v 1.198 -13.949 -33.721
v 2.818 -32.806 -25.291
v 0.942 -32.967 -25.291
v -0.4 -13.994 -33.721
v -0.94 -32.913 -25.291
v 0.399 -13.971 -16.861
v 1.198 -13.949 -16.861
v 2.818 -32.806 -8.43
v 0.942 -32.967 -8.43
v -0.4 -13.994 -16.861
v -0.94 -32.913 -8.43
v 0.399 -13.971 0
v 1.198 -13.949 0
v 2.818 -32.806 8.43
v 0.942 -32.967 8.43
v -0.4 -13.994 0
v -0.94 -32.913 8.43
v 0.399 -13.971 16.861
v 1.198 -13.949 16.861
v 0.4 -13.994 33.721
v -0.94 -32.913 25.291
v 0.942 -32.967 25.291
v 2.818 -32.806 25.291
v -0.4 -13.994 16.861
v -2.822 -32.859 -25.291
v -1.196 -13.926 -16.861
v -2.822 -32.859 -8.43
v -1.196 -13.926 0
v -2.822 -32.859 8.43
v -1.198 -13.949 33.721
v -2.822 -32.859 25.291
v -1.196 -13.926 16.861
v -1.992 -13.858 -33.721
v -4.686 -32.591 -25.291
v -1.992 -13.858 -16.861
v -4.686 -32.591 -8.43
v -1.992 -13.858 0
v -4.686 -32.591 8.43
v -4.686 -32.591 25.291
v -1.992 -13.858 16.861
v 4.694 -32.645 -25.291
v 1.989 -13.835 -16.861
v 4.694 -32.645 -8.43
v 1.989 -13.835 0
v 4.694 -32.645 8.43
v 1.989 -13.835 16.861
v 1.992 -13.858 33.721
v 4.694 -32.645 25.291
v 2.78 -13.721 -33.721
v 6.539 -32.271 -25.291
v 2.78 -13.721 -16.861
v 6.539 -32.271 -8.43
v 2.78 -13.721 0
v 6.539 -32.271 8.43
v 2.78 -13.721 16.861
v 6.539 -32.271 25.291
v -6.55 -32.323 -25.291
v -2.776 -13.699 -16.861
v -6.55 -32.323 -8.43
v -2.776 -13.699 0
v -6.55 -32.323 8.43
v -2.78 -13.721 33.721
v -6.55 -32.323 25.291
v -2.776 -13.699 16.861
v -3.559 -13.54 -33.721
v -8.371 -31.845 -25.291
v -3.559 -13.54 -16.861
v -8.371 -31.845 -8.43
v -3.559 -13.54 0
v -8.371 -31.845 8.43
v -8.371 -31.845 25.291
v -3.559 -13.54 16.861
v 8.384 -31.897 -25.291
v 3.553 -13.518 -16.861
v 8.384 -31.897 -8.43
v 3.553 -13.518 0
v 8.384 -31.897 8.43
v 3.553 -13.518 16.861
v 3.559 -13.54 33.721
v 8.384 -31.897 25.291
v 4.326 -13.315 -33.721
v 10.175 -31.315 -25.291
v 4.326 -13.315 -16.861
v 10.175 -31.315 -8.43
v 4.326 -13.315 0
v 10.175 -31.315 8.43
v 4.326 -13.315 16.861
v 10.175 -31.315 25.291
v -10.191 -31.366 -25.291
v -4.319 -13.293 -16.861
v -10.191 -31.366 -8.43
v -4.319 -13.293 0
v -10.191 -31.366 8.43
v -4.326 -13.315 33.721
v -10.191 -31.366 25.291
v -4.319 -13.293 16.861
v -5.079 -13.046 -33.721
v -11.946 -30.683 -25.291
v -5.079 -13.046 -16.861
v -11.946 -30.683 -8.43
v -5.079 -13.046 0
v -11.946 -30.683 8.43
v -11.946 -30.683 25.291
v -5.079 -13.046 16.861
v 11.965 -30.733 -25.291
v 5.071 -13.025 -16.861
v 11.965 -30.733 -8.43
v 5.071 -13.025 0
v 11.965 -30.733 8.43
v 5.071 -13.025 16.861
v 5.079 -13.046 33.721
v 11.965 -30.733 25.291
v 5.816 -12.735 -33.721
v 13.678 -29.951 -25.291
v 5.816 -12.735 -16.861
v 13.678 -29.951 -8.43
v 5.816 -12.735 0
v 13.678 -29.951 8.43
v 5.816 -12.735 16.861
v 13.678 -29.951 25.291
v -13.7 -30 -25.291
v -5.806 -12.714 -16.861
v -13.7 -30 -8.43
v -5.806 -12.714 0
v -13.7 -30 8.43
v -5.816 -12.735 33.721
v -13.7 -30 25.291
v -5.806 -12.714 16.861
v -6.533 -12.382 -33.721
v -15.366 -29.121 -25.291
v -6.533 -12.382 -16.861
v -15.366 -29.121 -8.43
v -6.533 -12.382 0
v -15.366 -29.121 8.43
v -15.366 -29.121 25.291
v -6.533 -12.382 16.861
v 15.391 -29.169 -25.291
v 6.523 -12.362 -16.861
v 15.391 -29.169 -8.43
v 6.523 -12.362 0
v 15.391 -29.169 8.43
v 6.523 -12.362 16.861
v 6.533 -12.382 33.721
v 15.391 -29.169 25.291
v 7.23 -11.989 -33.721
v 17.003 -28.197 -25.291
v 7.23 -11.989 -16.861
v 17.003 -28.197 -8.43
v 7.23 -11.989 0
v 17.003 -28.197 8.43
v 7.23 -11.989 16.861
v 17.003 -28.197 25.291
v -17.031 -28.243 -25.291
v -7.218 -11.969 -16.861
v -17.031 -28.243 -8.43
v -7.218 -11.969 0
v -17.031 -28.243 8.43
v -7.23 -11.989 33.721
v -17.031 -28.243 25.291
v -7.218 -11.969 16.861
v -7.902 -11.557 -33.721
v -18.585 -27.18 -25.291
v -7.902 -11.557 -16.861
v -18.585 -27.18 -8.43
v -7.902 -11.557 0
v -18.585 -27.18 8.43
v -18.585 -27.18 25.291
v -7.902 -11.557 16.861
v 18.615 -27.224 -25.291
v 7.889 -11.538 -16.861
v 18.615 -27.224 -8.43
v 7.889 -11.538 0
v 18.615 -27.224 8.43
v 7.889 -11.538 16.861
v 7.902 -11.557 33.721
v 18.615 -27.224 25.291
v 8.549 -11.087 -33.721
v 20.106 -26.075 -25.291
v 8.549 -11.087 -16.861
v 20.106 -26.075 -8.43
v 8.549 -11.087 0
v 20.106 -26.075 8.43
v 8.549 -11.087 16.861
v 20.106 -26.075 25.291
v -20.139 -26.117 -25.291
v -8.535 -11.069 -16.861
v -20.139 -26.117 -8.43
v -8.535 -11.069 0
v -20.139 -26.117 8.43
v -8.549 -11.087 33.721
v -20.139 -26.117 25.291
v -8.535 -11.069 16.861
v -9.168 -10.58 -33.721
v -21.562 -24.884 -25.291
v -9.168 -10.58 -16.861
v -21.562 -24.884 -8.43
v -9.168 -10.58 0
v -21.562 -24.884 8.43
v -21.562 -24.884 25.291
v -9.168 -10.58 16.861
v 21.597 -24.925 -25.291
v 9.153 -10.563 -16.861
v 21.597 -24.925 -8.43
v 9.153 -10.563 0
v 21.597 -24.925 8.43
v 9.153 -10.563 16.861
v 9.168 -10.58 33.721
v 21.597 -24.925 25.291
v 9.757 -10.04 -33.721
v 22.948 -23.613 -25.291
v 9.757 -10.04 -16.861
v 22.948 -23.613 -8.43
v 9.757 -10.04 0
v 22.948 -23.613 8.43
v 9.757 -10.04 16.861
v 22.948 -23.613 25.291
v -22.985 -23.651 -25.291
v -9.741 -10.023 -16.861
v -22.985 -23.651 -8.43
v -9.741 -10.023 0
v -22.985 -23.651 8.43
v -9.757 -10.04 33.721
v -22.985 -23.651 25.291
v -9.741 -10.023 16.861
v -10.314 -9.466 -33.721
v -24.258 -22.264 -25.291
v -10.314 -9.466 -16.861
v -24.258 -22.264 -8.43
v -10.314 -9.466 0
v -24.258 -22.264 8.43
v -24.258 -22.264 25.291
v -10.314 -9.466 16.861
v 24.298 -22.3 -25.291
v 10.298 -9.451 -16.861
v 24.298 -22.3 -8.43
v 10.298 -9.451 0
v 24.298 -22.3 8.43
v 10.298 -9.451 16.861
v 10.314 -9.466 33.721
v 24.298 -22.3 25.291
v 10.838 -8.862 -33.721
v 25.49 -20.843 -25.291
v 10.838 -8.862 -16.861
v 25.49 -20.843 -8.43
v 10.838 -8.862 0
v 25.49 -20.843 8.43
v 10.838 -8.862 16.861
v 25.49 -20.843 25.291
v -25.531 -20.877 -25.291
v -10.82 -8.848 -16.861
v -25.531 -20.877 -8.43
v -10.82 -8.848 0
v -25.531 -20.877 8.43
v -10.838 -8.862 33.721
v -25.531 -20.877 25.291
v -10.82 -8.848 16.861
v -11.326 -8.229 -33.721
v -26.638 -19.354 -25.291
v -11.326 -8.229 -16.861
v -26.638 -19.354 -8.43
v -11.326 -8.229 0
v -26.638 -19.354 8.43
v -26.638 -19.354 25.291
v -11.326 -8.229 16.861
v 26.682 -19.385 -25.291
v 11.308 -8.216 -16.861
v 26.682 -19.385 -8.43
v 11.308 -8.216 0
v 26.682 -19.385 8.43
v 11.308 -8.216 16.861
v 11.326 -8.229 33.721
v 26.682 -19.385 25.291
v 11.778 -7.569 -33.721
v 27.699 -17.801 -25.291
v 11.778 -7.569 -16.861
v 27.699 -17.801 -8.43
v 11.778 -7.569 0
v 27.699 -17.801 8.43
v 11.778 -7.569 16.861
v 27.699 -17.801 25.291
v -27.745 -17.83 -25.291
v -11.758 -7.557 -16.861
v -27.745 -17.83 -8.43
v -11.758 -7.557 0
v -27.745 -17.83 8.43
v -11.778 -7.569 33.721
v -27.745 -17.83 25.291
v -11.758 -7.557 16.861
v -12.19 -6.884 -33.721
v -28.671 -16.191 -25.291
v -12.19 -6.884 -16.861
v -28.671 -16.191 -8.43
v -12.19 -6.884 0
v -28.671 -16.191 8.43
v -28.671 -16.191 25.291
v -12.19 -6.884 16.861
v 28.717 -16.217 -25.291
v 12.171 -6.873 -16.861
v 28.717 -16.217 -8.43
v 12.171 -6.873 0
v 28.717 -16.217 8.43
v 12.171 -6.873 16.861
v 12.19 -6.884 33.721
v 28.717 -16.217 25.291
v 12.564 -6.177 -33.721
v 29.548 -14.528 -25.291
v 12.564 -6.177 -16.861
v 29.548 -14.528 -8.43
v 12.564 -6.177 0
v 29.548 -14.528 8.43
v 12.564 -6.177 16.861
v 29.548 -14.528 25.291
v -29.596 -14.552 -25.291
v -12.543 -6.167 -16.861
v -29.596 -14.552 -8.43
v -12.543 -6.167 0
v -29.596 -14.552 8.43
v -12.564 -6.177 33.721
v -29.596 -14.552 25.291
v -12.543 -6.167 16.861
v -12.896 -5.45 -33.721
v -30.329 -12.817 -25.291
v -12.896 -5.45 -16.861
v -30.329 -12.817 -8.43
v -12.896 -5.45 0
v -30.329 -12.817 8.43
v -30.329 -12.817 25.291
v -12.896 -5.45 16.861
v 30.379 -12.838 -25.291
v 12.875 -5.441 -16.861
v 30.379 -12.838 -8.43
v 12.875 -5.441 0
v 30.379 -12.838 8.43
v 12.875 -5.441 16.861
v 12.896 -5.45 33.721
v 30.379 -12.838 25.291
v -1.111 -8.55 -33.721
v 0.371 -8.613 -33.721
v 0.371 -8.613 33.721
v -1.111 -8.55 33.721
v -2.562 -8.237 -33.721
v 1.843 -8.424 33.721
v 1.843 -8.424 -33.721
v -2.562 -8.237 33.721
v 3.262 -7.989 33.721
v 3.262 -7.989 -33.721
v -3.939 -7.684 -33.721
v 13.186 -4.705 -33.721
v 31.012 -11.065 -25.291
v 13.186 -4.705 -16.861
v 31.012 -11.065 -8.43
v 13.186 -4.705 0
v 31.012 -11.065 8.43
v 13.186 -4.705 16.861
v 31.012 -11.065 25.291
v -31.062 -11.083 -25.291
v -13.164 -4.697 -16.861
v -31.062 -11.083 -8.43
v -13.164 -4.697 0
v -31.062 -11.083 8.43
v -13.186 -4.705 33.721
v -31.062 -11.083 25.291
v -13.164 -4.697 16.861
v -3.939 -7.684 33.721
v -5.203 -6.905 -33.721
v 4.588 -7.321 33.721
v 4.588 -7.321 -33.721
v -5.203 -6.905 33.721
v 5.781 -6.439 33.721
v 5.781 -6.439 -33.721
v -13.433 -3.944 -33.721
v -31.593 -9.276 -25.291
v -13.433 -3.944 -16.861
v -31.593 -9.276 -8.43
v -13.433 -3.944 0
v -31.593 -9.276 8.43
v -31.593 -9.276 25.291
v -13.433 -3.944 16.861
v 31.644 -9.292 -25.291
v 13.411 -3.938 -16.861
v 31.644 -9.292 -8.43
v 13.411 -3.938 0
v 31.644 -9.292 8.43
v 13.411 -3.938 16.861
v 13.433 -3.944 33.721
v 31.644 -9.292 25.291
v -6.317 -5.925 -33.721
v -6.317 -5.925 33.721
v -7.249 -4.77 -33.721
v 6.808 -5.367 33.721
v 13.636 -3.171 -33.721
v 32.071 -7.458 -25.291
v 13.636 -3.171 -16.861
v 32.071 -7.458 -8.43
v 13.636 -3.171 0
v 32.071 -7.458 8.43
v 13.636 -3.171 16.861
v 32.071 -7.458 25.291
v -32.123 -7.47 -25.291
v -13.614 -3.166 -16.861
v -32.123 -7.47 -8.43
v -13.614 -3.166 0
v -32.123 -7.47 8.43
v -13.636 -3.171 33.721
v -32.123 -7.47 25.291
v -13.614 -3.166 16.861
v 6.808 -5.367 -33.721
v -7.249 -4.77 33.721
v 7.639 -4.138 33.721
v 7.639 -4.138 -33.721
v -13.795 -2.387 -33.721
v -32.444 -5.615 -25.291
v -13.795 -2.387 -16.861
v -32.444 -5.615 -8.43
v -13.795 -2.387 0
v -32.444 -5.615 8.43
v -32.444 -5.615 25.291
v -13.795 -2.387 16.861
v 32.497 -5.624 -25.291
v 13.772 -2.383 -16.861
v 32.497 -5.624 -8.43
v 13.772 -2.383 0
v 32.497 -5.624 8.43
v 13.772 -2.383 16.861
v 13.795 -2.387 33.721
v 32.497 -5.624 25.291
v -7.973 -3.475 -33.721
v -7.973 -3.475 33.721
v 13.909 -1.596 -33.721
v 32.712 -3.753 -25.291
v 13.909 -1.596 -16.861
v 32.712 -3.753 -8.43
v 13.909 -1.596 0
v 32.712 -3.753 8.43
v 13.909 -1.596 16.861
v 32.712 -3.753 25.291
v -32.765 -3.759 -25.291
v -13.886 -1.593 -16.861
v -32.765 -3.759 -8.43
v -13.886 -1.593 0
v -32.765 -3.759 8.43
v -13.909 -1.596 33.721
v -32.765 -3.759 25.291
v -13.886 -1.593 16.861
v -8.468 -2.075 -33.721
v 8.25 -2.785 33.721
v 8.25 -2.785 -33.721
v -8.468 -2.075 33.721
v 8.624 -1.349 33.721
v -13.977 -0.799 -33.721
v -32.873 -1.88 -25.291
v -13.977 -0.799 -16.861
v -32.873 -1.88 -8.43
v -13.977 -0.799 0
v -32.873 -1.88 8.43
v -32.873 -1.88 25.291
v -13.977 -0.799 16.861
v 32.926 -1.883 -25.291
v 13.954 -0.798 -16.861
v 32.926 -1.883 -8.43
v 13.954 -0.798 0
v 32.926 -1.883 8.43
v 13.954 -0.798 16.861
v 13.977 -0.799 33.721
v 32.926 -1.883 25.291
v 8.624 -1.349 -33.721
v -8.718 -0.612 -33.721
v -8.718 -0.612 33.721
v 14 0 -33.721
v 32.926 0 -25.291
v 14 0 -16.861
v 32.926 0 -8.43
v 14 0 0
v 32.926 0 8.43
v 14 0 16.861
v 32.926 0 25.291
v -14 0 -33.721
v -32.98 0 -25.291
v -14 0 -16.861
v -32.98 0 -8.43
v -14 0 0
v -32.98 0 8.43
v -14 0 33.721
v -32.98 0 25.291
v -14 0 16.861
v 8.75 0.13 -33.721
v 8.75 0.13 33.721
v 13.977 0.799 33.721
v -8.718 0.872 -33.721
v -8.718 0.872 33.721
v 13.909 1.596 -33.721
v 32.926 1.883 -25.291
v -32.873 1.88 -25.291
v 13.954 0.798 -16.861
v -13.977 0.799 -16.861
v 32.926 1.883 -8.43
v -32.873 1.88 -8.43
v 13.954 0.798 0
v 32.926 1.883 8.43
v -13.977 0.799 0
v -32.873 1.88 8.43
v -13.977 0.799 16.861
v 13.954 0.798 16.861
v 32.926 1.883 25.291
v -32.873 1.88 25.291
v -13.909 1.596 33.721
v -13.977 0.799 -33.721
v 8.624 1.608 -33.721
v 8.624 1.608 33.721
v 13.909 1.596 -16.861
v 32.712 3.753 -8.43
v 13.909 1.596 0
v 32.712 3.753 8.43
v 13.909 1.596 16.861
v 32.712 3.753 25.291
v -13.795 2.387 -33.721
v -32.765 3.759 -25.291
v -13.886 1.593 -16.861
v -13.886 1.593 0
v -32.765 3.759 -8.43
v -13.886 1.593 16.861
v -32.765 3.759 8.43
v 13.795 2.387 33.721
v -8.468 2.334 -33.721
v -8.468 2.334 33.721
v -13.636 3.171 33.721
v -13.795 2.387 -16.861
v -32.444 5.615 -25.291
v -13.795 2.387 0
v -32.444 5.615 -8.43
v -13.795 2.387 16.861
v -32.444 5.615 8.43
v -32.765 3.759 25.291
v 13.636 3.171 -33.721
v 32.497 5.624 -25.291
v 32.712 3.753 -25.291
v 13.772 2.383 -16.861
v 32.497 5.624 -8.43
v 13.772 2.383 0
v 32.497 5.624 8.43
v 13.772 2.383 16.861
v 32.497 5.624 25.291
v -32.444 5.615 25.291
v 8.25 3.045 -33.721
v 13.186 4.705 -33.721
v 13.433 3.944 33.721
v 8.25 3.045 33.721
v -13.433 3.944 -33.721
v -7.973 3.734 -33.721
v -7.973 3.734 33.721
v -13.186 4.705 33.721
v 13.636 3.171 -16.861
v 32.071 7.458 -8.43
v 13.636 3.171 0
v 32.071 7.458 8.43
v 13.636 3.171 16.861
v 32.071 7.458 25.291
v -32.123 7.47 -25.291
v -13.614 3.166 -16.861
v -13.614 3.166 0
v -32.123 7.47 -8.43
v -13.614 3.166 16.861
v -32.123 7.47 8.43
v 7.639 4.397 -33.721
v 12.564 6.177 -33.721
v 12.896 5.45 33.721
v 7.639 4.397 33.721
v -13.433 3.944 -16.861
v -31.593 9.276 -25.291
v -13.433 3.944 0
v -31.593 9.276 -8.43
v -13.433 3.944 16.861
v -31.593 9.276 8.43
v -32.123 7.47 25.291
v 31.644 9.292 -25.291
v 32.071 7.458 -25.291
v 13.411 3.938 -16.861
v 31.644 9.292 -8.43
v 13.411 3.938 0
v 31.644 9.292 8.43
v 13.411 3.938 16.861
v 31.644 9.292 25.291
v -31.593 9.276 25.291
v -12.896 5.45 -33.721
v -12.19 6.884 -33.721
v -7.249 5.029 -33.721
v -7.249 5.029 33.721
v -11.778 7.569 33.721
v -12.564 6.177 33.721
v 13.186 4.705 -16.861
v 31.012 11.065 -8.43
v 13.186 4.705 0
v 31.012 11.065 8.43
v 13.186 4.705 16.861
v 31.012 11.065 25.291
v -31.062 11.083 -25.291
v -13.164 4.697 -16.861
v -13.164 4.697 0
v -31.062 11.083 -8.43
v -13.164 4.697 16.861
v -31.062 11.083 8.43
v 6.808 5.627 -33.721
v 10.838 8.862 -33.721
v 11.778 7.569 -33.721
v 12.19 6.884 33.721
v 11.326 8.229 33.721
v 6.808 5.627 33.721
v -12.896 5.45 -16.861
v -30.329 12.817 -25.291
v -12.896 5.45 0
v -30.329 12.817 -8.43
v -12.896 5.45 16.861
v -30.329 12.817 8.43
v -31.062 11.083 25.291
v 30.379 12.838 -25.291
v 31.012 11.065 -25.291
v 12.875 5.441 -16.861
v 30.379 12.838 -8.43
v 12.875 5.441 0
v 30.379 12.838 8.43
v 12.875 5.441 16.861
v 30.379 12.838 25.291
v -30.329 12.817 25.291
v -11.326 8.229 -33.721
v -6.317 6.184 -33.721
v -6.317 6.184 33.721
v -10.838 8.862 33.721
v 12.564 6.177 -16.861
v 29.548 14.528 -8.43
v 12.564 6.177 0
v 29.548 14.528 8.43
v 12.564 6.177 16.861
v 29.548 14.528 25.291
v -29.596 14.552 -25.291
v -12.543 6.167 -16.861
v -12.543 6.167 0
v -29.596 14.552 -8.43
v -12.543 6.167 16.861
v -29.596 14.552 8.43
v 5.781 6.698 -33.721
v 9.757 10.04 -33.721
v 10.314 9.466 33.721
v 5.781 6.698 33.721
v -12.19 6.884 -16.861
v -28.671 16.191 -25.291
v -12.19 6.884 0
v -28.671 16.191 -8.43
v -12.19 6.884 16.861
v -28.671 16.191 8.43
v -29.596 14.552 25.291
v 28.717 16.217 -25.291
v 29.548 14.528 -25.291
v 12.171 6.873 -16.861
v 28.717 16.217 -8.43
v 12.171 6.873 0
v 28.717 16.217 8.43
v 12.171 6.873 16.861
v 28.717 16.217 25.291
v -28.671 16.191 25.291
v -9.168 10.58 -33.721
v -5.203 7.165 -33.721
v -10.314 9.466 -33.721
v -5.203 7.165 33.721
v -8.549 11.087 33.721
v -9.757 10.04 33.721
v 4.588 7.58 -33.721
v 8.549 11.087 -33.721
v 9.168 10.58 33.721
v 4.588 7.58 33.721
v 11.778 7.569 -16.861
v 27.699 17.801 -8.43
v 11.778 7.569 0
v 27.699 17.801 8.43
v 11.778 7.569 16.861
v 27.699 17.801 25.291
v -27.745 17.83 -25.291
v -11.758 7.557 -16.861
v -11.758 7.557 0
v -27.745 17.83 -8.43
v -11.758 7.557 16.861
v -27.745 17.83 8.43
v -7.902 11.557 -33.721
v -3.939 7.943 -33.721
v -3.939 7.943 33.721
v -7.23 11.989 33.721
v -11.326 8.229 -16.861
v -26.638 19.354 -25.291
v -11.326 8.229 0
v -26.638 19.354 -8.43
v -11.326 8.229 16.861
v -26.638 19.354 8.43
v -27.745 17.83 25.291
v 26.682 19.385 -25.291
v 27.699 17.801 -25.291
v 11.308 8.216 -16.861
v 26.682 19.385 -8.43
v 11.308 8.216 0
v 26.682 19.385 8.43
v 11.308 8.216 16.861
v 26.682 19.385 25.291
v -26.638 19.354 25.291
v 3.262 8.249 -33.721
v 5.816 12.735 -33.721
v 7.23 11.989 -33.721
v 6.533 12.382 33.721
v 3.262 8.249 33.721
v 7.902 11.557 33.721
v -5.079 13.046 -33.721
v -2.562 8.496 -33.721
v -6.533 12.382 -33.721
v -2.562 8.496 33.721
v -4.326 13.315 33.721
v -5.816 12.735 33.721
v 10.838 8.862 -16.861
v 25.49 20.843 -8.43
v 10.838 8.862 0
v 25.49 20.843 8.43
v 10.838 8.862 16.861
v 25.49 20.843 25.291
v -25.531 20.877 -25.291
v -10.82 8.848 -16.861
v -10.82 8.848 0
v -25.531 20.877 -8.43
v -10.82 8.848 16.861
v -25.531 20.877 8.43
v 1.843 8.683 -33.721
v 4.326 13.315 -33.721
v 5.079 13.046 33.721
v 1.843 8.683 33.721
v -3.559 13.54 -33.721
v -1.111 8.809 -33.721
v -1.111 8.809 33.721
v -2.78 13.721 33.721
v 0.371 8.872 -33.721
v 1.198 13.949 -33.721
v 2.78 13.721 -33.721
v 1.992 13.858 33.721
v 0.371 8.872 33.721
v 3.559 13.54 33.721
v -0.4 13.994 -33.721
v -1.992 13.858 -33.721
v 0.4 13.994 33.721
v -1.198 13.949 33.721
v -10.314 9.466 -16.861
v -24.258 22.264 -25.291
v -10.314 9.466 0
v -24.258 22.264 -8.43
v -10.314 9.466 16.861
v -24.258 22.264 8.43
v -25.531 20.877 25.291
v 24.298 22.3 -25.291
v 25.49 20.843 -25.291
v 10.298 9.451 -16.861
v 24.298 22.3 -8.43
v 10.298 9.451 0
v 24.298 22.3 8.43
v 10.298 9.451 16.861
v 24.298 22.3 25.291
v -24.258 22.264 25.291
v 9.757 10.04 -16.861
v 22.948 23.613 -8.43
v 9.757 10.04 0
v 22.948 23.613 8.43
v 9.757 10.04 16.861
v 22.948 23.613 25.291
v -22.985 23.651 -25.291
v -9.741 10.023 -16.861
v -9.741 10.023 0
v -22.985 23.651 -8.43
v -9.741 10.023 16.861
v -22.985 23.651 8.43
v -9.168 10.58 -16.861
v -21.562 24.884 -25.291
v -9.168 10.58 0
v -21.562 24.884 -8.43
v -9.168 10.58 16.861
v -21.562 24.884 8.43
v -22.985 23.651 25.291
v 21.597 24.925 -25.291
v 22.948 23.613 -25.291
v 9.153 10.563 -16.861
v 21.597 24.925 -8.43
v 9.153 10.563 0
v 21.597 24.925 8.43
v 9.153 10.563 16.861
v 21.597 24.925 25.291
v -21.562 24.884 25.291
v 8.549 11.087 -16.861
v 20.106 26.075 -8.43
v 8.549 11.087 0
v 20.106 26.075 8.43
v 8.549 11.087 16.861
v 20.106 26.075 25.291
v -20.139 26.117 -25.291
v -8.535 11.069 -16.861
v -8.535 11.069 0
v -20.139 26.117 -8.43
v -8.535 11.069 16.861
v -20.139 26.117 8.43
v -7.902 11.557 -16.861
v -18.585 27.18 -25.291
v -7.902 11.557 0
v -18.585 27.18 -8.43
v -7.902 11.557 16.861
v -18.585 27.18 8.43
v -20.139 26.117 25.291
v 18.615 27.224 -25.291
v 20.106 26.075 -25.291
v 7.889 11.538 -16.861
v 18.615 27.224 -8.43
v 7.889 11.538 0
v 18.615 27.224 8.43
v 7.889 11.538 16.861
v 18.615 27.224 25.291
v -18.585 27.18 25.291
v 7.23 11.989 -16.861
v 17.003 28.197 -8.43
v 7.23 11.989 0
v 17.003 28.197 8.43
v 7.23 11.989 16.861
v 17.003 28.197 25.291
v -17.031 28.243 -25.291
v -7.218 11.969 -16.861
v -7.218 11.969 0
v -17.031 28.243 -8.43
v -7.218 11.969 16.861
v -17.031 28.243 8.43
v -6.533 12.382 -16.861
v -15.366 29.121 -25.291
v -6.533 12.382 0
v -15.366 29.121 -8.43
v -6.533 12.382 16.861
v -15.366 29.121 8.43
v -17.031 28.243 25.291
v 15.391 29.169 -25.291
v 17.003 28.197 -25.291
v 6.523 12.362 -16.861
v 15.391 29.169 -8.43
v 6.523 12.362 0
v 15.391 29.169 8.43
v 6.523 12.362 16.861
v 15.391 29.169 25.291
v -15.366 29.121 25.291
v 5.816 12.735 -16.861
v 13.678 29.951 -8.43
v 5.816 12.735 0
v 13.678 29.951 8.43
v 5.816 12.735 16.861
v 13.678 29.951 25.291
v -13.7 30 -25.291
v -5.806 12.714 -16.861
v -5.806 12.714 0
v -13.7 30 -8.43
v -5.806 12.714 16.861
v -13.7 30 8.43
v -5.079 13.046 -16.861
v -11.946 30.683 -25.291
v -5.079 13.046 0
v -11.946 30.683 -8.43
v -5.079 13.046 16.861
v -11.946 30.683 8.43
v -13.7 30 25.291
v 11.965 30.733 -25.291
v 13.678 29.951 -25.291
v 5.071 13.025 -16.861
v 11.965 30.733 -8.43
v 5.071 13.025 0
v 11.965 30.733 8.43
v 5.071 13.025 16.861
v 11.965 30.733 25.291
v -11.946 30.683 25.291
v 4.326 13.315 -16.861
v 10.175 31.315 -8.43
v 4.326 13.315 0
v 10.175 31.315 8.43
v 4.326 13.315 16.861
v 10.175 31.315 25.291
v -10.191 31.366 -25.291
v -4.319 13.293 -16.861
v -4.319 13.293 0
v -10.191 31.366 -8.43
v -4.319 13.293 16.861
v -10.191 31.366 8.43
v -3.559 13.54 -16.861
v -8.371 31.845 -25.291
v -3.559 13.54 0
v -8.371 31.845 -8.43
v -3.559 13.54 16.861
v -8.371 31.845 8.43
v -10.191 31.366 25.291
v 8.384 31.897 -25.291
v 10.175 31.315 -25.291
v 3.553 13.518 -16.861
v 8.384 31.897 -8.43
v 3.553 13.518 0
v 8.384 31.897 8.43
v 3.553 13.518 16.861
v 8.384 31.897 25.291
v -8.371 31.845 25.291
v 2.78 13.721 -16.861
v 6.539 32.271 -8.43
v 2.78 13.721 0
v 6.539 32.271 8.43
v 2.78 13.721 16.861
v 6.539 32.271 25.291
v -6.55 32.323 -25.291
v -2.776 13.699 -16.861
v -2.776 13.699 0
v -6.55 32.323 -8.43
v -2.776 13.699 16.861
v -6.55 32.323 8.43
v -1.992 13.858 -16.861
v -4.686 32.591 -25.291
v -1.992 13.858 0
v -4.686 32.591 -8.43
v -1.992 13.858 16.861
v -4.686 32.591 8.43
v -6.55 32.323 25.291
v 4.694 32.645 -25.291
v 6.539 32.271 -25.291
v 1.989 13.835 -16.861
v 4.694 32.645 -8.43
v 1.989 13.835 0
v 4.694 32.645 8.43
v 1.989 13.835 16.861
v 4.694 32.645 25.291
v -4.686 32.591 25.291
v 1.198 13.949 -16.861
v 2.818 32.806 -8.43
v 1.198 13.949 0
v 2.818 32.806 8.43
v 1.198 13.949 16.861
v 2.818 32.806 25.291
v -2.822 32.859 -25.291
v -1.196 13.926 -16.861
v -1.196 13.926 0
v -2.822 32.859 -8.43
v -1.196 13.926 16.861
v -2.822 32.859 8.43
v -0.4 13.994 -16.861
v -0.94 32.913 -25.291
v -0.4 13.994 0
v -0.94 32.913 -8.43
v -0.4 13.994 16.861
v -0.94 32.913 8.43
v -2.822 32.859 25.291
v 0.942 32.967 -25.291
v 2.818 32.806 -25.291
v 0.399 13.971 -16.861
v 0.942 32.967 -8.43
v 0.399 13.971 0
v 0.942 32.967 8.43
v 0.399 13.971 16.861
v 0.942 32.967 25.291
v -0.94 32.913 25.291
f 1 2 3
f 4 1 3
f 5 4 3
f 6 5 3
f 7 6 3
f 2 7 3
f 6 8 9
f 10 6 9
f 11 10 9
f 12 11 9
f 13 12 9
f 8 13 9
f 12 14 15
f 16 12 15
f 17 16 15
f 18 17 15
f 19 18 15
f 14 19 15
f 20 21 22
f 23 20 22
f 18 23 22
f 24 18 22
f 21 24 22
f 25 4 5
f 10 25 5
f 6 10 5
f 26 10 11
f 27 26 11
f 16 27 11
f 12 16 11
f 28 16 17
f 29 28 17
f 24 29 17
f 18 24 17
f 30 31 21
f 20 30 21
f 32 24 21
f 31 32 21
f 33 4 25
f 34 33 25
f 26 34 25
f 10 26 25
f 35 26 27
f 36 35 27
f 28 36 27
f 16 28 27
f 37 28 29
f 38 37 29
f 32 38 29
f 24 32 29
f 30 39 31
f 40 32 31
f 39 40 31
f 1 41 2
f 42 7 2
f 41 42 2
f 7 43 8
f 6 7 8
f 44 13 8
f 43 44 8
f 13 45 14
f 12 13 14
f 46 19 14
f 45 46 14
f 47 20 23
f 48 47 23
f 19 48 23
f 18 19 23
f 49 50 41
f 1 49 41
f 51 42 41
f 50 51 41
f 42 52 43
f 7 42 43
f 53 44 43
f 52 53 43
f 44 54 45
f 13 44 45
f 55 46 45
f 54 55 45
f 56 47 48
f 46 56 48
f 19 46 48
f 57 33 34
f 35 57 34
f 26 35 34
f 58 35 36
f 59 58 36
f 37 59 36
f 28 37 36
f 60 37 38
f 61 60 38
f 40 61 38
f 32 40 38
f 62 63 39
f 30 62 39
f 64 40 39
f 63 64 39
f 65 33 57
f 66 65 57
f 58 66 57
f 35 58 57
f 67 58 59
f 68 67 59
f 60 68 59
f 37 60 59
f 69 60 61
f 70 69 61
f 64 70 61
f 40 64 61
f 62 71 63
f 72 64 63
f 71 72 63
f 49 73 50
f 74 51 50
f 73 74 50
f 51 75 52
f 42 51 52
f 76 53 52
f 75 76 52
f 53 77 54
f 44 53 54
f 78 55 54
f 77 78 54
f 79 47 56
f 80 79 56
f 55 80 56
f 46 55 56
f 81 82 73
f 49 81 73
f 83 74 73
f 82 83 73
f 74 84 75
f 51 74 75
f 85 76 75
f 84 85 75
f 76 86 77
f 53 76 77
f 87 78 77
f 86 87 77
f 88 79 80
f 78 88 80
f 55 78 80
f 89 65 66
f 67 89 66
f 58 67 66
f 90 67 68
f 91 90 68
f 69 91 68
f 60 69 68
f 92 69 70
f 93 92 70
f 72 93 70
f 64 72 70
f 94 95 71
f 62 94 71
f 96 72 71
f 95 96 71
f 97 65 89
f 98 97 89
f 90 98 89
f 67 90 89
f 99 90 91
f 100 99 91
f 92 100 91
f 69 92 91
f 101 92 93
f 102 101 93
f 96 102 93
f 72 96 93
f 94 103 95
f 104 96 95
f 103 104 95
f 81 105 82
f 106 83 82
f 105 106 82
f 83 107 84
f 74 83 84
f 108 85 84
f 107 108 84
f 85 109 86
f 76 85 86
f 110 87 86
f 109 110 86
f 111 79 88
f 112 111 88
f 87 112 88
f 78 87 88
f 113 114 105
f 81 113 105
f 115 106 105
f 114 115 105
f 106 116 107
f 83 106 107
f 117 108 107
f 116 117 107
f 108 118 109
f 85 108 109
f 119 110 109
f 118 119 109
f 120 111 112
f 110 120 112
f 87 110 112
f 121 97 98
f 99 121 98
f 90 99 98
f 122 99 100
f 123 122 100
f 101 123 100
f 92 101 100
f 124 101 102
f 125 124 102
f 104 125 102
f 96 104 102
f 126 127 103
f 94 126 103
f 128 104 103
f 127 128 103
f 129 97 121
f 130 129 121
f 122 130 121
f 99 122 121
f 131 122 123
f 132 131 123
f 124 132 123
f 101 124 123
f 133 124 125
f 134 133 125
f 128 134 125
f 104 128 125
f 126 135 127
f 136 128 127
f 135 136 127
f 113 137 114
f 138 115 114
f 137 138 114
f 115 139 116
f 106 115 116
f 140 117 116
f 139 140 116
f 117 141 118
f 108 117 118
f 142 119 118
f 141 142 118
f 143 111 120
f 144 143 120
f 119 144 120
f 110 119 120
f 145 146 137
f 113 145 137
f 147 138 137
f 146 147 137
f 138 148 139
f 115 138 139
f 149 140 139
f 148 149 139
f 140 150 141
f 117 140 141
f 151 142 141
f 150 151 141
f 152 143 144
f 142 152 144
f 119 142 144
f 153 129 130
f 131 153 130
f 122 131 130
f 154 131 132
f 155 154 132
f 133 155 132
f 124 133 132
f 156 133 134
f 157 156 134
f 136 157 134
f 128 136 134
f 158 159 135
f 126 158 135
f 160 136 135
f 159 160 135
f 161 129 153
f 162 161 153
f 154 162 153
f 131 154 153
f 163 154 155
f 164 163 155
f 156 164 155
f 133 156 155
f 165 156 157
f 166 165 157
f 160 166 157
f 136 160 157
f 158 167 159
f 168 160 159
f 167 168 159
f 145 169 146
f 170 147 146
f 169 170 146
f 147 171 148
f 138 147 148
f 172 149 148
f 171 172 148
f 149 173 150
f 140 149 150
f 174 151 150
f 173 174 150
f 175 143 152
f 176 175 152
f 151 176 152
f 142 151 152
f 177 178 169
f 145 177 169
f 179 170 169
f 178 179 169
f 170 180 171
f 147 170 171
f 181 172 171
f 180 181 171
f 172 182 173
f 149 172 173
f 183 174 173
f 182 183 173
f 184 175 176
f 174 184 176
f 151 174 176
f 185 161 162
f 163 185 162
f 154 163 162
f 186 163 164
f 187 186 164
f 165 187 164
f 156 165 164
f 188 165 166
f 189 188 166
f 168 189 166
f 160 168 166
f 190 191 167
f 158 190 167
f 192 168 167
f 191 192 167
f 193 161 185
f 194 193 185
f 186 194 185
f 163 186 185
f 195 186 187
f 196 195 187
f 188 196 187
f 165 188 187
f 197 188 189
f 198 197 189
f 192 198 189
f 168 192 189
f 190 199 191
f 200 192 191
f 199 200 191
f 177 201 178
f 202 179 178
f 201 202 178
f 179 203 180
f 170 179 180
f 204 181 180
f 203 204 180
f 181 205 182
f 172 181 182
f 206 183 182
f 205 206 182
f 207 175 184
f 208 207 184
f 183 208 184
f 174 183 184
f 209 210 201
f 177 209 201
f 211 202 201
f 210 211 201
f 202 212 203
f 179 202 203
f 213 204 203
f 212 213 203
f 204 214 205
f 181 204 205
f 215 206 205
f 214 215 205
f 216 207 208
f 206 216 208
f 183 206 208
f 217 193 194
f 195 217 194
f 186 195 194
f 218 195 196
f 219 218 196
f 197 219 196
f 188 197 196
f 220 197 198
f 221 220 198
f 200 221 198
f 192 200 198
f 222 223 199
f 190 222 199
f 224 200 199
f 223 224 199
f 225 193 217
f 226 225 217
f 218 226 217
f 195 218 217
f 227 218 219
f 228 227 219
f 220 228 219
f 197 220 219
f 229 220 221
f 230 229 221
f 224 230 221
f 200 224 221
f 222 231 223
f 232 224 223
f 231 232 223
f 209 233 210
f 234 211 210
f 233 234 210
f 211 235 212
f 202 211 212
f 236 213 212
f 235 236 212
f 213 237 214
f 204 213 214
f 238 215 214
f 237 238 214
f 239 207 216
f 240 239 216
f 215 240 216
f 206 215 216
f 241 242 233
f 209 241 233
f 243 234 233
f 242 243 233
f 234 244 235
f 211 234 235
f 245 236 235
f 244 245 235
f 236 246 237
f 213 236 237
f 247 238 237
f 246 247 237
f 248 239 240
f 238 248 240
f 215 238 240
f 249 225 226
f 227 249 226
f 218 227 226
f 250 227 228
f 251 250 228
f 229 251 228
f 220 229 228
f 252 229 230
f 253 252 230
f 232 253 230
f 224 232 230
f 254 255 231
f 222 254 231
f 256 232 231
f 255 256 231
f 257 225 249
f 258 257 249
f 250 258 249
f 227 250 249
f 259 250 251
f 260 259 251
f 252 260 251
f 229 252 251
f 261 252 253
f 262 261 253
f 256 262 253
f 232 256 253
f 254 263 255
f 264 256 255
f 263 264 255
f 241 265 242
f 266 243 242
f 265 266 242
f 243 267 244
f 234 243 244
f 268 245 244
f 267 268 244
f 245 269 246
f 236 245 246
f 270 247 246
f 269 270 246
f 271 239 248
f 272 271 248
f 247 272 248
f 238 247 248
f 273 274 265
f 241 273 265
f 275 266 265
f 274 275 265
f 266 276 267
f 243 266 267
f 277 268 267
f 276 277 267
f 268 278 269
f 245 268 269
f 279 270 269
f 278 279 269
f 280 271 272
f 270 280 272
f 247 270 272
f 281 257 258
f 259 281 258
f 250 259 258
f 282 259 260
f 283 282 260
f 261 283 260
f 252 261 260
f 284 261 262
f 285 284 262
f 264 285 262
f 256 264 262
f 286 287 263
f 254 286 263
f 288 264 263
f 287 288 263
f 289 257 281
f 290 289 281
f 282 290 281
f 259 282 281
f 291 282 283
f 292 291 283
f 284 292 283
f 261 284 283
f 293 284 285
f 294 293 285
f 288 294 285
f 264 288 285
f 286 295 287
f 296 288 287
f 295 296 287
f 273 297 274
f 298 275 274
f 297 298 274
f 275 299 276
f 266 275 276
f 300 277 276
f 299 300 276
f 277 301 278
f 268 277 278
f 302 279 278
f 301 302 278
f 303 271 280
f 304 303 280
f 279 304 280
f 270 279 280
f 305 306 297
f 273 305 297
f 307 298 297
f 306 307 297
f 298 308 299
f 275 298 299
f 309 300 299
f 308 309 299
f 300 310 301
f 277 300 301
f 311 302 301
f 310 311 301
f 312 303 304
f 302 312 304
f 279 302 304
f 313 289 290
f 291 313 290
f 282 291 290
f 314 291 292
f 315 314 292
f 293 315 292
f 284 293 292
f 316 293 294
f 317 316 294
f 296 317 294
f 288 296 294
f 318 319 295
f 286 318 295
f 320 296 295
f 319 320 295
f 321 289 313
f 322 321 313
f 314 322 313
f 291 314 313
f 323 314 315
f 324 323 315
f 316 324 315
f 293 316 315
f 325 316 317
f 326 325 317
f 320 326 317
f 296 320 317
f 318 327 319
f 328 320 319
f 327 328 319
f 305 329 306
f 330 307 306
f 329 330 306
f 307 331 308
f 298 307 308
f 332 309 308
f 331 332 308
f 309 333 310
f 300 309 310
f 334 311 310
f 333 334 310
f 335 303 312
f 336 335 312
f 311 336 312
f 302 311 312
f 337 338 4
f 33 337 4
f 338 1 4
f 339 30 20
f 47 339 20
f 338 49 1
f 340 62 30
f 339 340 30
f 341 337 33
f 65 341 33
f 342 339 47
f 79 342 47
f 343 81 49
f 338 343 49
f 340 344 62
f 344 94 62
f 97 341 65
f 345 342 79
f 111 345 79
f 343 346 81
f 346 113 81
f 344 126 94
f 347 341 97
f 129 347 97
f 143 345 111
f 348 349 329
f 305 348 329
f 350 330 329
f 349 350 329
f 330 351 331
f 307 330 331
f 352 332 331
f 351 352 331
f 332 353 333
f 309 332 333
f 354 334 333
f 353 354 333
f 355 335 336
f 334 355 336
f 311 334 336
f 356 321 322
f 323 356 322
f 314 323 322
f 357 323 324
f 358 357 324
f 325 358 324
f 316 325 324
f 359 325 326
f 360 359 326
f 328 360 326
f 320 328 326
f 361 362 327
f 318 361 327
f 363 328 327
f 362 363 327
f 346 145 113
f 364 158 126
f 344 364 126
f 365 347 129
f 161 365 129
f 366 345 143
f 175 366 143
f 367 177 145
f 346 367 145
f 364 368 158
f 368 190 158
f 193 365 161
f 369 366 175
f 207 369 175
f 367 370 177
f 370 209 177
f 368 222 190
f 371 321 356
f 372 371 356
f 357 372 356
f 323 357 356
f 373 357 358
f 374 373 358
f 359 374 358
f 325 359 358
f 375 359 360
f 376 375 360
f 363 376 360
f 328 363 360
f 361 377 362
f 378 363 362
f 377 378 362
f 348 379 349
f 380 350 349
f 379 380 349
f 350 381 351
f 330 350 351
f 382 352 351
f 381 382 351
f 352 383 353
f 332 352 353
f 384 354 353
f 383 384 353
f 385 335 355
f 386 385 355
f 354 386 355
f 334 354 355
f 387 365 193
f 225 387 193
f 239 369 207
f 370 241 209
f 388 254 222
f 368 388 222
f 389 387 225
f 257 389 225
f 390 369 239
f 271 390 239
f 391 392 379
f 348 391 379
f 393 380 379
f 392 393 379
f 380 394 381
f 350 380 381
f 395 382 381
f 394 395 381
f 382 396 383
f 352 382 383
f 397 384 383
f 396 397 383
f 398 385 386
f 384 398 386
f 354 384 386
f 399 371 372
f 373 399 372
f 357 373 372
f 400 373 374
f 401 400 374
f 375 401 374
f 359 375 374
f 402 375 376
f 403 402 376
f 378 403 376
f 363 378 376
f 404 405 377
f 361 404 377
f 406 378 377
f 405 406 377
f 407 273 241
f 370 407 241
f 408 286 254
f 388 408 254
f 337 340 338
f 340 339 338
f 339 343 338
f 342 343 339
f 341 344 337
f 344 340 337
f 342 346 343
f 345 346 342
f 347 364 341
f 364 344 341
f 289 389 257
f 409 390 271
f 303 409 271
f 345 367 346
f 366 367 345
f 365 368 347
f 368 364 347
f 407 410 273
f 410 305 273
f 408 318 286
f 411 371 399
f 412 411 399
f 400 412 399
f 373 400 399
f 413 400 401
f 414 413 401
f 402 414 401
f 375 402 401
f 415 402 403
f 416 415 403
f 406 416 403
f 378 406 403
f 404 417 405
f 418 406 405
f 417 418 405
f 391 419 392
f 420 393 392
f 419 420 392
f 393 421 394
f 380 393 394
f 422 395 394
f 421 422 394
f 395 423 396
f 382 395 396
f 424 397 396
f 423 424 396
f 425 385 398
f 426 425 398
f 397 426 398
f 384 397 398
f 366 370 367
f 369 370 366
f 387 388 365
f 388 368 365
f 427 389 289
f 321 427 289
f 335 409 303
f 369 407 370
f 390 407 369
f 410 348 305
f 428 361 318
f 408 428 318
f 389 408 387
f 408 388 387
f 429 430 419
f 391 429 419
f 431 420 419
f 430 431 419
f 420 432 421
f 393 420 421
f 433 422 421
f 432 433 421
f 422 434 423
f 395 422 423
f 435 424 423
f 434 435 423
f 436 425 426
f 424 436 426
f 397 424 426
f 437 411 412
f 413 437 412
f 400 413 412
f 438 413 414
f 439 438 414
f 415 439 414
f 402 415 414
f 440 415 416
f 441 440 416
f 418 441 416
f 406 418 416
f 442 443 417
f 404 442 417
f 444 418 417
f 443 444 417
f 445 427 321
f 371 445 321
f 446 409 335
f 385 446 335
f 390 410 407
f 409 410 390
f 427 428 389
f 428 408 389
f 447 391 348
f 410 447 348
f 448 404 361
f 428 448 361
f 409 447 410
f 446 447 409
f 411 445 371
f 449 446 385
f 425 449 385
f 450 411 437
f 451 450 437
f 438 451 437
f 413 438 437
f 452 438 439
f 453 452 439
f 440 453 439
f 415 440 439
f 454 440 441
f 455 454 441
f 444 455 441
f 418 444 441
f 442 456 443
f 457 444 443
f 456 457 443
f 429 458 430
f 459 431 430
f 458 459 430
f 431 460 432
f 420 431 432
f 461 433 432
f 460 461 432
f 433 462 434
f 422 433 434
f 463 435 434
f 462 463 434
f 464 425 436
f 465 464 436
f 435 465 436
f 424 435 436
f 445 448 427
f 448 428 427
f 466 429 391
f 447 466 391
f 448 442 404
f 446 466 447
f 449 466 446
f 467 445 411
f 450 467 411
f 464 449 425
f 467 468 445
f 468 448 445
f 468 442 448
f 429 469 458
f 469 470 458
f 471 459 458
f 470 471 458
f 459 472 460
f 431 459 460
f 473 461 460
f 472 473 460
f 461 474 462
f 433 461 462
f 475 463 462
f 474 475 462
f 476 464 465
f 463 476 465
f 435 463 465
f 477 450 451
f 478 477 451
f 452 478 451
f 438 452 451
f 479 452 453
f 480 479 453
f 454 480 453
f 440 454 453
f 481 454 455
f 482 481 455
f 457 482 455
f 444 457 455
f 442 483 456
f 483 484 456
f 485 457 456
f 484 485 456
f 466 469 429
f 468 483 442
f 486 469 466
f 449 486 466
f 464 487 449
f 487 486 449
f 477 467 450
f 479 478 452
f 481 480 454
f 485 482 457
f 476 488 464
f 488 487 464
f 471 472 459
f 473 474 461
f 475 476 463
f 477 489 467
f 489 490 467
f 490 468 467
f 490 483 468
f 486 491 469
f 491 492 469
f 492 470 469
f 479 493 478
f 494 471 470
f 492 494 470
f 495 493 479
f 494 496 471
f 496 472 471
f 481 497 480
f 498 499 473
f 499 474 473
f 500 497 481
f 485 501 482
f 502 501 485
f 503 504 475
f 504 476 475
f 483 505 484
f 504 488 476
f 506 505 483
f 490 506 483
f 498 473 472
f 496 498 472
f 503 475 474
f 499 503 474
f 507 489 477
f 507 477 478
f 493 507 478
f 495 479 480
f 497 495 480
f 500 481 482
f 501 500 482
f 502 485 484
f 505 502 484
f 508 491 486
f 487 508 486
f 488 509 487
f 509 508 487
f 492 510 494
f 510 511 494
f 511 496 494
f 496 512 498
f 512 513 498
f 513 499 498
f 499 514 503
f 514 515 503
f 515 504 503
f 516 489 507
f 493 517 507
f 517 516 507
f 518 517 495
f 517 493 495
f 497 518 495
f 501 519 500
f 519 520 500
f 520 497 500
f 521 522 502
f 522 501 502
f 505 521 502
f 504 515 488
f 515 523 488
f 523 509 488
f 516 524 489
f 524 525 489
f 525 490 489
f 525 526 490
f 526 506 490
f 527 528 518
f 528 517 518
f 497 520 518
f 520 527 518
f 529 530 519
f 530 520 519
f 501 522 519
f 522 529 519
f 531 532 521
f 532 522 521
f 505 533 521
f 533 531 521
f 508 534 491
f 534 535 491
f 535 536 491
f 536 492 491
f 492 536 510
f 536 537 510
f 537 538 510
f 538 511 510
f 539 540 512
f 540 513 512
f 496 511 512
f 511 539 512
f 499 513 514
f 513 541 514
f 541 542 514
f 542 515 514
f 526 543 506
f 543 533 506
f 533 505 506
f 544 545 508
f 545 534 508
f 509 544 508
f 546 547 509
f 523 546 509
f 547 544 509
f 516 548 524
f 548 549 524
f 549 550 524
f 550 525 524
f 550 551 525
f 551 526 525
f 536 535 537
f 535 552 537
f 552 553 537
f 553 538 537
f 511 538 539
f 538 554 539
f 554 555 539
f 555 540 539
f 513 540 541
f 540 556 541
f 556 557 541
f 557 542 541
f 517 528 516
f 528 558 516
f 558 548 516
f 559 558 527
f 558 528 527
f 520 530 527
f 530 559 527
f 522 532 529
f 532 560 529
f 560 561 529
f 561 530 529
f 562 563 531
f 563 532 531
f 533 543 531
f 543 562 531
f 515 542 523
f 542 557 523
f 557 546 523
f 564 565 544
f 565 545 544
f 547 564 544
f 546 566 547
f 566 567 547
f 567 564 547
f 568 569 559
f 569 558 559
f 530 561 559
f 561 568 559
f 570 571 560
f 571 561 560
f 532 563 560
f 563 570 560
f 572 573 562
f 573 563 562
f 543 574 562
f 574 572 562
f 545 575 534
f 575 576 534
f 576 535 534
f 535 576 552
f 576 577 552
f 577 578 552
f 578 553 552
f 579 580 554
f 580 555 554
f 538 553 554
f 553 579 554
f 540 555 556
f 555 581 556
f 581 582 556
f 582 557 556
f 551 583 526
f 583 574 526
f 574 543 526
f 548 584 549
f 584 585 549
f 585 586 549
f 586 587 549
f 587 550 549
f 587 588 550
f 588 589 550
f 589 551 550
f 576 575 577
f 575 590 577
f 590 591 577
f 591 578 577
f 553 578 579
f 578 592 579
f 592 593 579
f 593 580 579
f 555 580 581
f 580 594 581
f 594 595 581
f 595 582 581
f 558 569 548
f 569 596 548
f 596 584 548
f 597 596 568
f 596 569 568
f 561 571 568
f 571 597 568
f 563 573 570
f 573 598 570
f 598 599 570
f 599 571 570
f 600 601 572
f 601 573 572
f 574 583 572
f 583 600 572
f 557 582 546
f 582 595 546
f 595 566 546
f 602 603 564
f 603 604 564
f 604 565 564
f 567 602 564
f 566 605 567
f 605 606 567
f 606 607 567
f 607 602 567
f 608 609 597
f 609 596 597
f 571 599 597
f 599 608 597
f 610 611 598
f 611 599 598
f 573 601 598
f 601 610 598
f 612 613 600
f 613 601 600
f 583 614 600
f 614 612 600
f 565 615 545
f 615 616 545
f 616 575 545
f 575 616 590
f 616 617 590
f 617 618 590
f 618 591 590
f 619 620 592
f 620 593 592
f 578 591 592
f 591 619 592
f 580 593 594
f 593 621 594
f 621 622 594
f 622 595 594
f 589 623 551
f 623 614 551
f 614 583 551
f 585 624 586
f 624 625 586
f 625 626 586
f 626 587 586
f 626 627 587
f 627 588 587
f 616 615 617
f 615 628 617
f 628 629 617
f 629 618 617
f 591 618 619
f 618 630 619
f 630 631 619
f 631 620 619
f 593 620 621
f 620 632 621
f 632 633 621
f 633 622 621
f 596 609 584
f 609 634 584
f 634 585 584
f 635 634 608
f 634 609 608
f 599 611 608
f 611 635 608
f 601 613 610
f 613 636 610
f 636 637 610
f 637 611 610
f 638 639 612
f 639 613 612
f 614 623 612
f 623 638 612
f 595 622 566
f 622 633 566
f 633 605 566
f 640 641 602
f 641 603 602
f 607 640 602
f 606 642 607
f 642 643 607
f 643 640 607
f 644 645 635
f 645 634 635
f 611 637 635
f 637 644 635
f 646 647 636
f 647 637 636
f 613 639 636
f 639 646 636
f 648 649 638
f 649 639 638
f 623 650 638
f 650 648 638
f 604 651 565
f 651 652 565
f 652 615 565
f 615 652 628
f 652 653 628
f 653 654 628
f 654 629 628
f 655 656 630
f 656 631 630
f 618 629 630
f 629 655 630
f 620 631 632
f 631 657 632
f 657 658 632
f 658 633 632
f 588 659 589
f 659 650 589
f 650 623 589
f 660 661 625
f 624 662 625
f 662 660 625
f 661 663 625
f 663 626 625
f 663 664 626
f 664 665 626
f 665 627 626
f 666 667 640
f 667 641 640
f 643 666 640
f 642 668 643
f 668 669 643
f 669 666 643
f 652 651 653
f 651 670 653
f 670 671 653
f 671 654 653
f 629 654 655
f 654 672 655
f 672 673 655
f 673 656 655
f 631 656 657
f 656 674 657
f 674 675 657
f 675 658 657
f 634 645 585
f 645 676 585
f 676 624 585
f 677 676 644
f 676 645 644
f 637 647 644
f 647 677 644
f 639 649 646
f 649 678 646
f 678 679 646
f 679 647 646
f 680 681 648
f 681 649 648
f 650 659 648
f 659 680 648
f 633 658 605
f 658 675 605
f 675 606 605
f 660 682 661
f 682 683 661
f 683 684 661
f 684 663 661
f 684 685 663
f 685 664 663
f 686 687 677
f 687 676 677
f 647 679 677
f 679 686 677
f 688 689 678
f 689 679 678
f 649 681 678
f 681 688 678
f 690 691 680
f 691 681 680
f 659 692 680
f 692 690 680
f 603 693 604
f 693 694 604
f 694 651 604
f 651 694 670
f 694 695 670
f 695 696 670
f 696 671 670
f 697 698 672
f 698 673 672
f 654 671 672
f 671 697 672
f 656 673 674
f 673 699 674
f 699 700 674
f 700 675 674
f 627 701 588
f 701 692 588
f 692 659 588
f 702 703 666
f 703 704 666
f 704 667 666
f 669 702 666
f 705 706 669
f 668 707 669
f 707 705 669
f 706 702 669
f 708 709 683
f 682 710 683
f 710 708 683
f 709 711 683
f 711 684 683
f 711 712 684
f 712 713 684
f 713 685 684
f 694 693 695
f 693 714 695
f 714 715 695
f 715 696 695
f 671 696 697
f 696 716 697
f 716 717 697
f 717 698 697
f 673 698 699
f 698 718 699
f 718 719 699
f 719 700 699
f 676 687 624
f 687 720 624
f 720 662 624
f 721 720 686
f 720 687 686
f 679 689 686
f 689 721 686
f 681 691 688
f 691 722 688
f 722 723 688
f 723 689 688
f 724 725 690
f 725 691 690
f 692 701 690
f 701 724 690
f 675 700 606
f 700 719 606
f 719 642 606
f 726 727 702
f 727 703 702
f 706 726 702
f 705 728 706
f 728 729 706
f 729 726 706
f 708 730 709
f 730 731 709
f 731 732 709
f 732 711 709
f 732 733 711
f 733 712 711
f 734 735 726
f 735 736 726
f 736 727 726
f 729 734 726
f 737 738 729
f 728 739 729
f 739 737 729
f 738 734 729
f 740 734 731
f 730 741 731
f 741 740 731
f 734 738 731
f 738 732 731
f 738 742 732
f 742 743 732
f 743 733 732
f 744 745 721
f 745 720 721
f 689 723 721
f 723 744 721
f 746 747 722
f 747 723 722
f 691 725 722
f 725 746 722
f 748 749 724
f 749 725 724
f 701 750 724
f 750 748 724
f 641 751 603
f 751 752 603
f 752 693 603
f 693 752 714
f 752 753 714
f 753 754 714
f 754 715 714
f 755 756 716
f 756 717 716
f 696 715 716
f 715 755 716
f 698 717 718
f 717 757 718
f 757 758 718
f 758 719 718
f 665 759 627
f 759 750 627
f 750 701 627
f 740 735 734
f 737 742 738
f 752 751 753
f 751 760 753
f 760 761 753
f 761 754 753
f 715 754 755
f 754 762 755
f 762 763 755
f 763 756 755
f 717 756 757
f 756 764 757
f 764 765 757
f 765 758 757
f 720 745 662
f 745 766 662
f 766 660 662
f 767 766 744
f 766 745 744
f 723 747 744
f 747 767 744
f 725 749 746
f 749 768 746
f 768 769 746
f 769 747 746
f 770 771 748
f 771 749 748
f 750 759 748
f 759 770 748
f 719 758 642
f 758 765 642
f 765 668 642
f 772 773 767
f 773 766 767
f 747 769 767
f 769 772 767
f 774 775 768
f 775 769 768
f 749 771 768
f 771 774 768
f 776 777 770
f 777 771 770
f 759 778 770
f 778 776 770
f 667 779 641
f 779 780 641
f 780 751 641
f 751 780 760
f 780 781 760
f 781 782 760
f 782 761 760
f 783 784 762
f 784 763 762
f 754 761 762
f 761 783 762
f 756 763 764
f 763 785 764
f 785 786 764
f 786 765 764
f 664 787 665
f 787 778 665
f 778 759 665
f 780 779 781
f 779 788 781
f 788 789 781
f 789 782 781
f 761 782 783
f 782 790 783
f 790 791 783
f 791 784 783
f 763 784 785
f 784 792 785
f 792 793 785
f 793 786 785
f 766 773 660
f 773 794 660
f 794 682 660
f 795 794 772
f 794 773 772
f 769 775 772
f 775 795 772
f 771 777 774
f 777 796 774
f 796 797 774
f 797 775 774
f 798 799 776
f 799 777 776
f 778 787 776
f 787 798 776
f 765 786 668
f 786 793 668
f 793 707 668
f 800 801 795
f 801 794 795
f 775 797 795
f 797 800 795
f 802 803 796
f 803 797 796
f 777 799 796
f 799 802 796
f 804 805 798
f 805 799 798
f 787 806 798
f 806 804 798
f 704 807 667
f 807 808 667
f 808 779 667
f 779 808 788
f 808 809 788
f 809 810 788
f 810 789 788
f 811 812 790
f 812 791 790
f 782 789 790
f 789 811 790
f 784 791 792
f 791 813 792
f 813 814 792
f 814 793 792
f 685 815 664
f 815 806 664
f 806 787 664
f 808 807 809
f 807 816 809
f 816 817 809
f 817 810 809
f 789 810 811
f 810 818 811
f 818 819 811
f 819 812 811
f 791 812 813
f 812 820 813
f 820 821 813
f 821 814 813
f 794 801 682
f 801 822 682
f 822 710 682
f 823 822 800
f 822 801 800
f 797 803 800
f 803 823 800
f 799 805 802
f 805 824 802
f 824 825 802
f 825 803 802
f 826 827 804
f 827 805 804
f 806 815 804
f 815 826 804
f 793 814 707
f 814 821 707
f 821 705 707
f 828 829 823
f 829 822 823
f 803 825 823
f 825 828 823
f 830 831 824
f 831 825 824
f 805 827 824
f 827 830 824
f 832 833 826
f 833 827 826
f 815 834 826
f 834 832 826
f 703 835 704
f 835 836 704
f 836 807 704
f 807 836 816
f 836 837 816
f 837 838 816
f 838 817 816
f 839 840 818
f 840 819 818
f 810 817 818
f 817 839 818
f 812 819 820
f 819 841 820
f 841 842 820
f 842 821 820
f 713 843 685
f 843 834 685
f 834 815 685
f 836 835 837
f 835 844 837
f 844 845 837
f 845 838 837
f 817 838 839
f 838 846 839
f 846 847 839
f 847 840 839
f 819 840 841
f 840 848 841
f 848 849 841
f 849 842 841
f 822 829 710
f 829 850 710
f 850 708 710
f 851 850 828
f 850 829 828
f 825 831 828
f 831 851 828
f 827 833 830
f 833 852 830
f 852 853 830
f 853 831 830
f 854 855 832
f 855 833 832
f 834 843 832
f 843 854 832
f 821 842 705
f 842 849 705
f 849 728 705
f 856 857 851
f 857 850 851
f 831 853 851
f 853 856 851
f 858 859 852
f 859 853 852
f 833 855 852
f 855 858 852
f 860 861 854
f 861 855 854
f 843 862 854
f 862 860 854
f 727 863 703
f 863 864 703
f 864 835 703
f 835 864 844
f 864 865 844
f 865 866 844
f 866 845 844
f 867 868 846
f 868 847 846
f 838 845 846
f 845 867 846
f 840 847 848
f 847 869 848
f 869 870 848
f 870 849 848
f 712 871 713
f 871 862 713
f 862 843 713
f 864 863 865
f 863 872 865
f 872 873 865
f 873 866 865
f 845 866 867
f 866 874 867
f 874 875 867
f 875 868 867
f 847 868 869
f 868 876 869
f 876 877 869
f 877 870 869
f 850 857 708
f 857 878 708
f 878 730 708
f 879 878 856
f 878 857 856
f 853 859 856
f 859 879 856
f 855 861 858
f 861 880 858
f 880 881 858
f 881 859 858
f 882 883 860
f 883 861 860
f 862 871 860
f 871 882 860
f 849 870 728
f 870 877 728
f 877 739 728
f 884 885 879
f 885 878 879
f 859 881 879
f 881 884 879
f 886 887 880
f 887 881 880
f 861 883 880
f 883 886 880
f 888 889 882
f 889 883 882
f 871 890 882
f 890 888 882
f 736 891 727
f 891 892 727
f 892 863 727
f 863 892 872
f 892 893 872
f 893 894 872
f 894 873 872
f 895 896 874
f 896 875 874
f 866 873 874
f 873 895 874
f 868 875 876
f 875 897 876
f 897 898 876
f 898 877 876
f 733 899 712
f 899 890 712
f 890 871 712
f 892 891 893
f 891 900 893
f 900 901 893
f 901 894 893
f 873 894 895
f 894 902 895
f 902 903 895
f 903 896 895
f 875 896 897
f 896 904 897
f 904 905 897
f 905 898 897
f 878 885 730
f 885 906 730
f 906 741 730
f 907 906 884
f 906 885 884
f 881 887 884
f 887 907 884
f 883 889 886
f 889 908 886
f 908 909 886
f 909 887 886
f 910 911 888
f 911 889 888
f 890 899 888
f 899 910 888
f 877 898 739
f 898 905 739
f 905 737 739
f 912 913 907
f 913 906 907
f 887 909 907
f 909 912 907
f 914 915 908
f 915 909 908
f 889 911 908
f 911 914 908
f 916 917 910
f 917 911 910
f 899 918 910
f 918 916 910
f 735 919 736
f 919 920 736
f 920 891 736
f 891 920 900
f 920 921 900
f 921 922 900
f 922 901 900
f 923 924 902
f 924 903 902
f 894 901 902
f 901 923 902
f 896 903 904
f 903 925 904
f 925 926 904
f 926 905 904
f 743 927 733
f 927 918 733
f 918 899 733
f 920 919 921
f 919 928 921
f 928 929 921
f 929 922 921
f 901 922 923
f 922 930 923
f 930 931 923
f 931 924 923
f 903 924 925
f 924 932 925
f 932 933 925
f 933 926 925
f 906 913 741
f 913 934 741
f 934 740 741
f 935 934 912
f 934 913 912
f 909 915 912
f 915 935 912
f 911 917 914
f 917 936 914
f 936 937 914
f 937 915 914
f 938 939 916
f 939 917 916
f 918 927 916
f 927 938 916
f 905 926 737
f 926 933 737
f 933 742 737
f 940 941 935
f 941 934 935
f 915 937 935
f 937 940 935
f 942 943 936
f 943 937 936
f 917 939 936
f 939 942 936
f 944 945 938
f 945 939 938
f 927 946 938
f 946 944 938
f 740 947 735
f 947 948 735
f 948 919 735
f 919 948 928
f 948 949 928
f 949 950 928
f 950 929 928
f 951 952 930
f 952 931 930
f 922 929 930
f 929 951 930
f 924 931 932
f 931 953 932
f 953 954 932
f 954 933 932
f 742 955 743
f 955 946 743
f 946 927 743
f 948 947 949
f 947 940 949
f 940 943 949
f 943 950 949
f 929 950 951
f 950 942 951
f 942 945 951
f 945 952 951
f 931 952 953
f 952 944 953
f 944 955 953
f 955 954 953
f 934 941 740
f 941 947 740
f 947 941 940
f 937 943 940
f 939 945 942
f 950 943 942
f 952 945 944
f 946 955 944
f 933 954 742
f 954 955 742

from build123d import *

# Parameters (mm, degrees)
TALADRO_DE_MARGEN_PARA_M162_D = 17.5


with BuildPart() as part:
    # Croquis1 → Revolución3 (revolve)
    with BuildSketch(Plane(origin=(0, 0, 0), x_dir=(1, 0, 0), z_dir=(0, 1, 0))):
        Polygon((0, 33.721279245), (0, -33.721279245), (14, -33.721279245), (32.980229853, -25.290959433), (14, -16.860639622), (32.980229853, -8.430319811), (14, 0), (32.980229853, 8.430319811), (14, 16.860639622), (32.980229853, 25.290959433), (14, 33.721279245), align=None)
    revolve(axis=Axis((0, 0, -33.721279245), (0, 0, 1)))

    # Taladro de margen para M162 (through all)
    with Locations(Plane.XY.offset(33.721279245)):
        with Locations((0, 0.129582741)):
            Hole(TALADRO_DE_MARGEN_PARA_M162_D / 2)


solid = part.part
